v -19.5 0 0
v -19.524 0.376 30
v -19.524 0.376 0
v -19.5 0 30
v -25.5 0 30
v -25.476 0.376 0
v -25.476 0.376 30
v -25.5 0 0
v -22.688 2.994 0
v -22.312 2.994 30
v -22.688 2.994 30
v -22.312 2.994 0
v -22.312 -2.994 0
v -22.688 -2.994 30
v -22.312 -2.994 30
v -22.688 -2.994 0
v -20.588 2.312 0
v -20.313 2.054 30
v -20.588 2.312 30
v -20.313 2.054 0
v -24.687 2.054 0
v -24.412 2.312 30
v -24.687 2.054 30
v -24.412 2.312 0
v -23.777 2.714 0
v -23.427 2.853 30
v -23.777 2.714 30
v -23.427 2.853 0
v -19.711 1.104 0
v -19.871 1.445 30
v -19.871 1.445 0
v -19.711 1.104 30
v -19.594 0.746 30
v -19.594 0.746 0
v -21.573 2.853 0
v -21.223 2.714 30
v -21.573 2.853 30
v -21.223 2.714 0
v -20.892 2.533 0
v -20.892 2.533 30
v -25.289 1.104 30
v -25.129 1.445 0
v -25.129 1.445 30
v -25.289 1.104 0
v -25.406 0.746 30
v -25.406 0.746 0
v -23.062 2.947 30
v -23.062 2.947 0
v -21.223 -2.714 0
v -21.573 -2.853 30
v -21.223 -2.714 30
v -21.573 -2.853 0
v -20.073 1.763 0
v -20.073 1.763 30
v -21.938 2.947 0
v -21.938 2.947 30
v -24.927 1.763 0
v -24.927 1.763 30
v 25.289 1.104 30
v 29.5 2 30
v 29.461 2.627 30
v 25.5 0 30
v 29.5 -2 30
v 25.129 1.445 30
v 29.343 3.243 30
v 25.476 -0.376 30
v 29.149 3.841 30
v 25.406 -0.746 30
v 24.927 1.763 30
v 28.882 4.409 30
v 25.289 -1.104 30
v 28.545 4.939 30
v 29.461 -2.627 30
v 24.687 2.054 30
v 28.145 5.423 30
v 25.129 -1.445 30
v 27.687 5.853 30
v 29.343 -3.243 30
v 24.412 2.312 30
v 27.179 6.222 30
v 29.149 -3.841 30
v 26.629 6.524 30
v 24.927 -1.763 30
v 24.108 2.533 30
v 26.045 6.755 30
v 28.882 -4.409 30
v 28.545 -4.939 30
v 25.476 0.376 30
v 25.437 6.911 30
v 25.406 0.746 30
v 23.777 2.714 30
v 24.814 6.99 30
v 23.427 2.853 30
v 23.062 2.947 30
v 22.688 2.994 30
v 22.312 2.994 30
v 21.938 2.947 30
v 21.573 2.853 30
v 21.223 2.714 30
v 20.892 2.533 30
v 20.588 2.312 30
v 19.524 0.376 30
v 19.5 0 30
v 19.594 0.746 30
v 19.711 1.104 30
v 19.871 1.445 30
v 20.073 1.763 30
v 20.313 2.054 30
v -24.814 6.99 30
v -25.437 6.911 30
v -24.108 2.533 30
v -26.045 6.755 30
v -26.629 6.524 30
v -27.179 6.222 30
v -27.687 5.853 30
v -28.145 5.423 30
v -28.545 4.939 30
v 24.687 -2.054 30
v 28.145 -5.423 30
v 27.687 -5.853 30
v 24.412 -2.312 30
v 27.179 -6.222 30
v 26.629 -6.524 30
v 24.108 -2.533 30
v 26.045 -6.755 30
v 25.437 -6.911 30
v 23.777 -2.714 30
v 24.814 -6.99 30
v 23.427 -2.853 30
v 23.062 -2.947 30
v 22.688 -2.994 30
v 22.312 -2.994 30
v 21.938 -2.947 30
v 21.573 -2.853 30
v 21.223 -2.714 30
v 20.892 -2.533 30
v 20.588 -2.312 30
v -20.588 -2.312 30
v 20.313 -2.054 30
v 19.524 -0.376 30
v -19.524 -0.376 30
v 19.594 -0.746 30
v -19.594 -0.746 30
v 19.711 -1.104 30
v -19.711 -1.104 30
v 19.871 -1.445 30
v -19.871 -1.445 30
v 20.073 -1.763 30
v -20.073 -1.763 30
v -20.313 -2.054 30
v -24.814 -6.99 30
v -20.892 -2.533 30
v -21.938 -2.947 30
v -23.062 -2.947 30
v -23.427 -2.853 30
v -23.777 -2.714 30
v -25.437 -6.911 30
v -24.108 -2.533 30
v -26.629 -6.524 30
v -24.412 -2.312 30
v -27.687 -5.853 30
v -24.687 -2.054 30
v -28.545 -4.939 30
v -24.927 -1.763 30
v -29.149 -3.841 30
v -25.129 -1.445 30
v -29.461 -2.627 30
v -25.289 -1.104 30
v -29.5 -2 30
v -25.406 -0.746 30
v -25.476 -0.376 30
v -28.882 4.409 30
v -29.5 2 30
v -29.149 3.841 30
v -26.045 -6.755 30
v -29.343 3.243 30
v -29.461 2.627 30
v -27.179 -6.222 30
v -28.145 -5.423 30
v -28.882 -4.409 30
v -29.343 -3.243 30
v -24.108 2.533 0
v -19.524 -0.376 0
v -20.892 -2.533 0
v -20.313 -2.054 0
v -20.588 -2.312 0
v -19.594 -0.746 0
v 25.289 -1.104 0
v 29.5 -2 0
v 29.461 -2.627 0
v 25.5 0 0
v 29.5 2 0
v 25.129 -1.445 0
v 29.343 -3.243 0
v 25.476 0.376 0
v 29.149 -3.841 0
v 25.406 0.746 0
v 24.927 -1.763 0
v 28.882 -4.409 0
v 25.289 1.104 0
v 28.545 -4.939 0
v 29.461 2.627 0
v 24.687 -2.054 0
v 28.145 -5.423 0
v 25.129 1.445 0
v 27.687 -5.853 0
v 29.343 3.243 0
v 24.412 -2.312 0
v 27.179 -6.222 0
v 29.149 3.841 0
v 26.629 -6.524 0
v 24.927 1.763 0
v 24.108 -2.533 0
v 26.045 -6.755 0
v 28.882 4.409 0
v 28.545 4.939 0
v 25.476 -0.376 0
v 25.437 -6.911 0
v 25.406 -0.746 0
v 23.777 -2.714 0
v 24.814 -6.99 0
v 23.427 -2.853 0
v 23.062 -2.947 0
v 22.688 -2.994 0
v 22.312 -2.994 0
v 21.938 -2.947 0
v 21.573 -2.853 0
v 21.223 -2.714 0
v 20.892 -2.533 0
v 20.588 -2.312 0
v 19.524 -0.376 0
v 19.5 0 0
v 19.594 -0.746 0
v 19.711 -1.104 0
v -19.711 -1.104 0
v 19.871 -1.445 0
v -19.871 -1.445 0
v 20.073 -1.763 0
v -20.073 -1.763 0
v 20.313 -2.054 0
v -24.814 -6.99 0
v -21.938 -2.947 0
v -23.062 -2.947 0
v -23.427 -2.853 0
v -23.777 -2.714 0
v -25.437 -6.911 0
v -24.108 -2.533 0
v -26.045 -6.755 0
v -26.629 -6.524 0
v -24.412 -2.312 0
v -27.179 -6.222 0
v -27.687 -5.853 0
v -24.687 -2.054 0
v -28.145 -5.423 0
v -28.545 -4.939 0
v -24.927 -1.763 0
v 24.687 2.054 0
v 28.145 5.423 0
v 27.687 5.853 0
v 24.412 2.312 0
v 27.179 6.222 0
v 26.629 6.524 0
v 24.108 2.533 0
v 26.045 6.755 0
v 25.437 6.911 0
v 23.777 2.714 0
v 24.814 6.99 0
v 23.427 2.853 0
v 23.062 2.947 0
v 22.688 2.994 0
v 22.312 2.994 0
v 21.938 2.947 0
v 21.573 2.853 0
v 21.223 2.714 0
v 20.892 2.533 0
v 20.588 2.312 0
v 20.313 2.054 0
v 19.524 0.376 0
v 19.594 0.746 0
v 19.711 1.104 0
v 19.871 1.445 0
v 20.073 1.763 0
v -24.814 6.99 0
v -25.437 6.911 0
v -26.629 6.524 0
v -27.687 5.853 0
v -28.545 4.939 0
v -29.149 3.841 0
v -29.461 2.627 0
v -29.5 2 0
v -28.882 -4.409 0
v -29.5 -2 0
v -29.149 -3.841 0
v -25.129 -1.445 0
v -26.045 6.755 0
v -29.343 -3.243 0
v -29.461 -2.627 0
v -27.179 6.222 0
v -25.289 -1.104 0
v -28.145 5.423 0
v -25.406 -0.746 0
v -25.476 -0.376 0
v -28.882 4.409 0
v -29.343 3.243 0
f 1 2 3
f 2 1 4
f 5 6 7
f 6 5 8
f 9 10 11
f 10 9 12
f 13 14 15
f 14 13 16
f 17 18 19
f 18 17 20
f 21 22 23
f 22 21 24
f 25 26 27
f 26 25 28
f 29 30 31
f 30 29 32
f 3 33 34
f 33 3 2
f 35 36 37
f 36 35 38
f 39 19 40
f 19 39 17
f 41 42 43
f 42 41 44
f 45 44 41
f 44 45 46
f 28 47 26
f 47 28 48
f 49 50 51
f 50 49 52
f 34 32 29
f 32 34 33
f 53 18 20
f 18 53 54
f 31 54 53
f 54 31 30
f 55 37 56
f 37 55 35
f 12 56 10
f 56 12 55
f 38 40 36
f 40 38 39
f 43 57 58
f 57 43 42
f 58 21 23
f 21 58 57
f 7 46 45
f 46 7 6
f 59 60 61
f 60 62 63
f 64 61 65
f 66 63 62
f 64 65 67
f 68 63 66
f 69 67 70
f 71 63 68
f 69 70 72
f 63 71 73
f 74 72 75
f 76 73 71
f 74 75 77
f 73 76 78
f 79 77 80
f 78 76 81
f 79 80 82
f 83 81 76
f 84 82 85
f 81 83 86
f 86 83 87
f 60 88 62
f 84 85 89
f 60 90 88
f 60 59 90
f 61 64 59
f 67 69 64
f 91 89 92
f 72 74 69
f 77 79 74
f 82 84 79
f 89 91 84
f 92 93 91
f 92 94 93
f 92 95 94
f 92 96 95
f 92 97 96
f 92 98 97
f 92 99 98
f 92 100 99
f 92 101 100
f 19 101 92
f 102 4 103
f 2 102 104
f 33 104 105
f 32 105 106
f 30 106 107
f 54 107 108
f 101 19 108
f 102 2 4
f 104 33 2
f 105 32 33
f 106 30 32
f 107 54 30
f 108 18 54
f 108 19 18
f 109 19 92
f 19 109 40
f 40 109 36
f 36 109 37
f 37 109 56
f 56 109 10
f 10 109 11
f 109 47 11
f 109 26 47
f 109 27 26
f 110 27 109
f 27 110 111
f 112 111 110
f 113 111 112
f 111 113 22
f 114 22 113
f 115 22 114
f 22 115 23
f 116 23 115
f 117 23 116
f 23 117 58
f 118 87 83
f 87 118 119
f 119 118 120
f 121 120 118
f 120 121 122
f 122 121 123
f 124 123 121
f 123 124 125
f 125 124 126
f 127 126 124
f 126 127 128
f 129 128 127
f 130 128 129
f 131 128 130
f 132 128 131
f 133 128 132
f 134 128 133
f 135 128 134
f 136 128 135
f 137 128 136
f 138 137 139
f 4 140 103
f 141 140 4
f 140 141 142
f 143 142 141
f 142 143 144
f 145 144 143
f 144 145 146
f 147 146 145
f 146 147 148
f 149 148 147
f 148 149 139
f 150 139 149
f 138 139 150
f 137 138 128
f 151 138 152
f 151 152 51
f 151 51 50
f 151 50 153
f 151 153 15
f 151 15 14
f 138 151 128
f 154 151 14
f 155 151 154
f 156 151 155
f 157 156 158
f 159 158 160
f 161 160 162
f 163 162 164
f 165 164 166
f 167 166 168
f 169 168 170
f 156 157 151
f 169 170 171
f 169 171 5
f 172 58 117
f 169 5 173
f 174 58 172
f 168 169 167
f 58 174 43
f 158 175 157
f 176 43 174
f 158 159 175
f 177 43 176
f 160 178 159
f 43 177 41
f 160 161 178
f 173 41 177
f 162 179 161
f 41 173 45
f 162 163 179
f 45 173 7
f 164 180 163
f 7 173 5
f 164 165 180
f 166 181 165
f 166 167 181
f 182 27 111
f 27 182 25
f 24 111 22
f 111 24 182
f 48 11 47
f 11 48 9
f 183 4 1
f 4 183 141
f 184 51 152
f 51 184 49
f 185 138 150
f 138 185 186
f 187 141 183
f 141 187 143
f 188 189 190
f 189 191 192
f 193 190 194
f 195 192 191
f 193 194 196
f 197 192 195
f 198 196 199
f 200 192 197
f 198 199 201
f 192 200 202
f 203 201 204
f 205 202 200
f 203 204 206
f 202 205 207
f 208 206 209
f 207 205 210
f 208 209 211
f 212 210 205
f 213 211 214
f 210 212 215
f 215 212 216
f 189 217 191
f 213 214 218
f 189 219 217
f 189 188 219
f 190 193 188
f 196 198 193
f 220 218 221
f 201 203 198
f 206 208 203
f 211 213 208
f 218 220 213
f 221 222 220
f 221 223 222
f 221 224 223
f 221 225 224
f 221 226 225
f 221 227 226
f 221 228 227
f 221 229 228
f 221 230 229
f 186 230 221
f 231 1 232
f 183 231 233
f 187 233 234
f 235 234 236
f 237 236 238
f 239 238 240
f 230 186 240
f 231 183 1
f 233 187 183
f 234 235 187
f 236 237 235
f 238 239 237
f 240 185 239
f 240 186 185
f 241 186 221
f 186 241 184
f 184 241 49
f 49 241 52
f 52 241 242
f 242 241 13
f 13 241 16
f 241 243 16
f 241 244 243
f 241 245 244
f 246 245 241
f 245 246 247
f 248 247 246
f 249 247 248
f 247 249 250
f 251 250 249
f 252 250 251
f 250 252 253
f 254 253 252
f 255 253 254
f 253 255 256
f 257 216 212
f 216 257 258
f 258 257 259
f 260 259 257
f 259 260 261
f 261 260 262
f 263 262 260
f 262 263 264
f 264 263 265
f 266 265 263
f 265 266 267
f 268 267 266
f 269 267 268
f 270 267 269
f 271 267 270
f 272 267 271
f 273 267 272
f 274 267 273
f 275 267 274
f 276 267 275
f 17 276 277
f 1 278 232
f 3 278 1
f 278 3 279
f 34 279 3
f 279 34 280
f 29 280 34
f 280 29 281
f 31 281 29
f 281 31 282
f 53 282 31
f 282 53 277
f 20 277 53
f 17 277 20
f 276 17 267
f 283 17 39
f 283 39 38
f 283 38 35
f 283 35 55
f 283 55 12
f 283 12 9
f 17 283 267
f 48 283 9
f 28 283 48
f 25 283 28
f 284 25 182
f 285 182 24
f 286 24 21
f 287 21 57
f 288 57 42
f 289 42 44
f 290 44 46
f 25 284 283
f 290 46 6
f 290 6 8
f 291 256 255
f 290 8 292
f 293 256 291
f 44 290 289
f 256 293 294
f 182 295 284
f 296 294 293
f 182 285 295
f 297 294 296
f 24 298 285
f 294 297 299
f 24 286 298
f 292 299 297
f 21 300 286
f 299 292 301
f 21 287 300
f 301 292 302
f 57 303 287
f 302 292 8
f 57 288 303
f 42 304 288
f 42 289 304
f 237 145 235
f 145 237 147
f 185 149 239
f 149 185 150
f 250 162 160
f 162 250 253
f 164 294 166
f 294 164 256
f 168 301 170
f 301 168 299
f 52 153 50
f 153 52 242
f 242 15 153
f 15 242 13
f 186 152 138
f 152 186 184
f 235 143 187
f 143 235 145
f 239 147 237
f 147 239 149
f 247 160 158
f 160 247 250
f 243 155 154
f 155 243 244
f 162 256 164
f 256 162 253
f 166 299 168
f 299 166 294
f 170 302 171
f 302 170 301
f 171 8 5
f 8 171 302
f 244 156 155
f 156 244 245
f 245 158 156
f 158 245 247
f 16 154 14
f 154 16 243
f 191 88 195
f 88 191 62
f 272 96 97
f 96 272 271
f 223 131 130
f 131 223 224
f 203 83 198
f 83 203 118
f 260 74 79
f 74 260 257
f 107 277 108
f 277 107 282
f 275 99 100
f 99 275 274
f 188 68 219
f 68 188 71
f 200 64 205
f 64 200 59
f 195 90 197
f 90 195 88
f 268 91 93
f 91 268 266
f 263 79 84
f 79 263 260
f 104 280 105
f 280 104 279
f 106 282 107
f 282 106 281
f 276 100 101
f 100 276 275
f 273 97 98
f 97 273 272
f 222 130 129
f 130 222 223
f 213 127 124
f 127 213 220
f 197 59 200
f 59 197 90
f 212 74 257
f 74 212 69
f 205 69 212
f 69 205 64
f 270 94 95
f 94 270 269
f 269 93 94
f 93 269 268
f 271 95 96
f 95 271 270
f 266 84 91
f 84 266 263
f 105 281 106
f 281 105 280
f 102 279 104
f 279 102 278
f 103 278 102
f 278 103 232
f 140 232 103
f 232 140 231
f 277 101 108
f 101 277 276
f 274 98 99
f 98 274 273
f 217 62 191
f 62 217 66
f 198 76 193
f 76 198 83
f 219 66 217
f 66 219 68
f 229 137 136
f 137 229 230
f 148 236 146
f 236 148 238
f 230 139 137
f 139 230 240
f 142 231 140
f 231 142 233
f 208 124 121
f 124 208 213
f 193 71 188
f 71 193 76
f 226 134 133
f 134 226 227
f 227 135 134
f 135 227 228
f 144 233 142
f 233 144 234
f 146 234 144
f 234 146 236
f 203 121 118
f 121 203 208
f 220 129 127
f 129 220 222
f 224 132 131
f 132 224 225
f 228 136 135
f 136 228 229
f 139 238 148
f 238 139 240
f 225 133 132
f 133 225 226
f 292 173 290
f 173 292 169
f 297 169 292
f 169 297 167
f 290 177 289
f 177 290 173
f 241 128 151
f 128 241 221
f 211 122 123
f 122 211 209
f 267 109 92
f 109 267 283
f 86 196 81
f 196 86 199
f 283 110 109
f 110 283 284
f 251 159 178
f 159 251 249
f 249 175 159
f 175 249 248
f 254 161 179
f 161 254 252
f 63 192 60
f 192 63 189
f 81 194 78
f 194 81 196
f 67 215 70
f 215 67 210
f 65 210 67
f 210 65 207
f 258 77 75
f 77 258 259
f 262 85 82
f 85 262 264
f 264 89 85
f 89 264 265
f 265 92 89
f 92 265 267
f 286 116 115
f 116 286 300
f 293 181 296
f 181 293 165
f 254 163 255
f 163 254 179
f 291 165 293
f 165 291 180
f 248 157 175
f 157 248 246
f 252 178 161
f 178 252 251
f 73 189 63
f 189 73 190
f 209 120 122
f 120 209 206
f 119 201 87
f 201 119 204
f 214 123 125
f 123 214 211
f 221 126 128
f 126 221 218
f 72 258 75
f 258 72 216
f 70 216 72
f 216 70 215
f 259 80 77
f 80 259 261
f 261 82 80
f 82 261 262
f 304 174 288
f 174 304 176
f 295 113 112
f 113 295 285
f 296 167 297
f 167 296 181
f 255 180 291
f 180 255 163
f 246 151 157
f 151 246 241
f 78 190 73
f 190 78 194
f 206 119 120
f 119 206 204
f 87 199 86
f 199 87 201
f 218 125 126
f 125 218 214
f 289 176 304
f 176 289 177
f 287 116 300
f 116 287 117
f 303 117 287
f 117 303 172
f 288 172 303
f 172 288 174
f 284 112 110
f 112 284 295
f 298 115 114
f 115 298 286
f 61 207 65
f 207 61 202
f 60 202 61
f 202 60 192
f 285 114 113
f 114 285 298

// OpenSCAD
$fn = 50;


difference() {
	union() {
		hull() {
			translate(v = [-24.5000000000, 2.0000000000, 0]) {
				cylinder(h = 30, r = 5);
			}
			translate(v = [24.5000000000, 2.0000000000, 0]) {
				cylinder(h = 30, r = 5);
			}
			translate(v = [-24.5000000000, -2.0000000000, 0]) {
				cylinder(h = 30, r = 5);
			}
			translate(v = [24.5000000000, -2.0000000000, 0]) {
				cylinder(h = 30, r = 5);
			}
		}
	}
	union() {
		translate(v = [-22.5000000000, 0.0000000000, 0]) {
			cylinder(h = 30, r = 3.0000000000);
		}
		translate(v = [22.5000000000, 0.0000000000, 0]) {
			cylinder(h = 30, r = 3.0000000000);
		}
		translate(v = [-22.5000000000, 0.0000000000, 0]) {
			cylinder(h = 30, r = 1.5000000000);
		}
		translate(v = [22.5000000000, 0.0000000000, 0]) {
			cylinder(h = 30, r = 1.5000000000);
		}
		translate(v = [-22.5000000000, 0.0000000000, 0]) {
			cylinder(h = 30, r = 1.5000000000);
		}
		translate(v = [22.5000000000, 0.0000000000, 0]) {
			cylinder(h = 30, r = 1.5000000000);
		}
		translate(v = [-22.5000000000, 0.0000000000, 0]) {
			cylinder(h = 30, r = 1.5000000000);
		}
		translate(v = [22.5000000000, 0.0000000000, 0]) {
			cylinder(h = 30, r = 1.5000000000);
		}
	}
}
